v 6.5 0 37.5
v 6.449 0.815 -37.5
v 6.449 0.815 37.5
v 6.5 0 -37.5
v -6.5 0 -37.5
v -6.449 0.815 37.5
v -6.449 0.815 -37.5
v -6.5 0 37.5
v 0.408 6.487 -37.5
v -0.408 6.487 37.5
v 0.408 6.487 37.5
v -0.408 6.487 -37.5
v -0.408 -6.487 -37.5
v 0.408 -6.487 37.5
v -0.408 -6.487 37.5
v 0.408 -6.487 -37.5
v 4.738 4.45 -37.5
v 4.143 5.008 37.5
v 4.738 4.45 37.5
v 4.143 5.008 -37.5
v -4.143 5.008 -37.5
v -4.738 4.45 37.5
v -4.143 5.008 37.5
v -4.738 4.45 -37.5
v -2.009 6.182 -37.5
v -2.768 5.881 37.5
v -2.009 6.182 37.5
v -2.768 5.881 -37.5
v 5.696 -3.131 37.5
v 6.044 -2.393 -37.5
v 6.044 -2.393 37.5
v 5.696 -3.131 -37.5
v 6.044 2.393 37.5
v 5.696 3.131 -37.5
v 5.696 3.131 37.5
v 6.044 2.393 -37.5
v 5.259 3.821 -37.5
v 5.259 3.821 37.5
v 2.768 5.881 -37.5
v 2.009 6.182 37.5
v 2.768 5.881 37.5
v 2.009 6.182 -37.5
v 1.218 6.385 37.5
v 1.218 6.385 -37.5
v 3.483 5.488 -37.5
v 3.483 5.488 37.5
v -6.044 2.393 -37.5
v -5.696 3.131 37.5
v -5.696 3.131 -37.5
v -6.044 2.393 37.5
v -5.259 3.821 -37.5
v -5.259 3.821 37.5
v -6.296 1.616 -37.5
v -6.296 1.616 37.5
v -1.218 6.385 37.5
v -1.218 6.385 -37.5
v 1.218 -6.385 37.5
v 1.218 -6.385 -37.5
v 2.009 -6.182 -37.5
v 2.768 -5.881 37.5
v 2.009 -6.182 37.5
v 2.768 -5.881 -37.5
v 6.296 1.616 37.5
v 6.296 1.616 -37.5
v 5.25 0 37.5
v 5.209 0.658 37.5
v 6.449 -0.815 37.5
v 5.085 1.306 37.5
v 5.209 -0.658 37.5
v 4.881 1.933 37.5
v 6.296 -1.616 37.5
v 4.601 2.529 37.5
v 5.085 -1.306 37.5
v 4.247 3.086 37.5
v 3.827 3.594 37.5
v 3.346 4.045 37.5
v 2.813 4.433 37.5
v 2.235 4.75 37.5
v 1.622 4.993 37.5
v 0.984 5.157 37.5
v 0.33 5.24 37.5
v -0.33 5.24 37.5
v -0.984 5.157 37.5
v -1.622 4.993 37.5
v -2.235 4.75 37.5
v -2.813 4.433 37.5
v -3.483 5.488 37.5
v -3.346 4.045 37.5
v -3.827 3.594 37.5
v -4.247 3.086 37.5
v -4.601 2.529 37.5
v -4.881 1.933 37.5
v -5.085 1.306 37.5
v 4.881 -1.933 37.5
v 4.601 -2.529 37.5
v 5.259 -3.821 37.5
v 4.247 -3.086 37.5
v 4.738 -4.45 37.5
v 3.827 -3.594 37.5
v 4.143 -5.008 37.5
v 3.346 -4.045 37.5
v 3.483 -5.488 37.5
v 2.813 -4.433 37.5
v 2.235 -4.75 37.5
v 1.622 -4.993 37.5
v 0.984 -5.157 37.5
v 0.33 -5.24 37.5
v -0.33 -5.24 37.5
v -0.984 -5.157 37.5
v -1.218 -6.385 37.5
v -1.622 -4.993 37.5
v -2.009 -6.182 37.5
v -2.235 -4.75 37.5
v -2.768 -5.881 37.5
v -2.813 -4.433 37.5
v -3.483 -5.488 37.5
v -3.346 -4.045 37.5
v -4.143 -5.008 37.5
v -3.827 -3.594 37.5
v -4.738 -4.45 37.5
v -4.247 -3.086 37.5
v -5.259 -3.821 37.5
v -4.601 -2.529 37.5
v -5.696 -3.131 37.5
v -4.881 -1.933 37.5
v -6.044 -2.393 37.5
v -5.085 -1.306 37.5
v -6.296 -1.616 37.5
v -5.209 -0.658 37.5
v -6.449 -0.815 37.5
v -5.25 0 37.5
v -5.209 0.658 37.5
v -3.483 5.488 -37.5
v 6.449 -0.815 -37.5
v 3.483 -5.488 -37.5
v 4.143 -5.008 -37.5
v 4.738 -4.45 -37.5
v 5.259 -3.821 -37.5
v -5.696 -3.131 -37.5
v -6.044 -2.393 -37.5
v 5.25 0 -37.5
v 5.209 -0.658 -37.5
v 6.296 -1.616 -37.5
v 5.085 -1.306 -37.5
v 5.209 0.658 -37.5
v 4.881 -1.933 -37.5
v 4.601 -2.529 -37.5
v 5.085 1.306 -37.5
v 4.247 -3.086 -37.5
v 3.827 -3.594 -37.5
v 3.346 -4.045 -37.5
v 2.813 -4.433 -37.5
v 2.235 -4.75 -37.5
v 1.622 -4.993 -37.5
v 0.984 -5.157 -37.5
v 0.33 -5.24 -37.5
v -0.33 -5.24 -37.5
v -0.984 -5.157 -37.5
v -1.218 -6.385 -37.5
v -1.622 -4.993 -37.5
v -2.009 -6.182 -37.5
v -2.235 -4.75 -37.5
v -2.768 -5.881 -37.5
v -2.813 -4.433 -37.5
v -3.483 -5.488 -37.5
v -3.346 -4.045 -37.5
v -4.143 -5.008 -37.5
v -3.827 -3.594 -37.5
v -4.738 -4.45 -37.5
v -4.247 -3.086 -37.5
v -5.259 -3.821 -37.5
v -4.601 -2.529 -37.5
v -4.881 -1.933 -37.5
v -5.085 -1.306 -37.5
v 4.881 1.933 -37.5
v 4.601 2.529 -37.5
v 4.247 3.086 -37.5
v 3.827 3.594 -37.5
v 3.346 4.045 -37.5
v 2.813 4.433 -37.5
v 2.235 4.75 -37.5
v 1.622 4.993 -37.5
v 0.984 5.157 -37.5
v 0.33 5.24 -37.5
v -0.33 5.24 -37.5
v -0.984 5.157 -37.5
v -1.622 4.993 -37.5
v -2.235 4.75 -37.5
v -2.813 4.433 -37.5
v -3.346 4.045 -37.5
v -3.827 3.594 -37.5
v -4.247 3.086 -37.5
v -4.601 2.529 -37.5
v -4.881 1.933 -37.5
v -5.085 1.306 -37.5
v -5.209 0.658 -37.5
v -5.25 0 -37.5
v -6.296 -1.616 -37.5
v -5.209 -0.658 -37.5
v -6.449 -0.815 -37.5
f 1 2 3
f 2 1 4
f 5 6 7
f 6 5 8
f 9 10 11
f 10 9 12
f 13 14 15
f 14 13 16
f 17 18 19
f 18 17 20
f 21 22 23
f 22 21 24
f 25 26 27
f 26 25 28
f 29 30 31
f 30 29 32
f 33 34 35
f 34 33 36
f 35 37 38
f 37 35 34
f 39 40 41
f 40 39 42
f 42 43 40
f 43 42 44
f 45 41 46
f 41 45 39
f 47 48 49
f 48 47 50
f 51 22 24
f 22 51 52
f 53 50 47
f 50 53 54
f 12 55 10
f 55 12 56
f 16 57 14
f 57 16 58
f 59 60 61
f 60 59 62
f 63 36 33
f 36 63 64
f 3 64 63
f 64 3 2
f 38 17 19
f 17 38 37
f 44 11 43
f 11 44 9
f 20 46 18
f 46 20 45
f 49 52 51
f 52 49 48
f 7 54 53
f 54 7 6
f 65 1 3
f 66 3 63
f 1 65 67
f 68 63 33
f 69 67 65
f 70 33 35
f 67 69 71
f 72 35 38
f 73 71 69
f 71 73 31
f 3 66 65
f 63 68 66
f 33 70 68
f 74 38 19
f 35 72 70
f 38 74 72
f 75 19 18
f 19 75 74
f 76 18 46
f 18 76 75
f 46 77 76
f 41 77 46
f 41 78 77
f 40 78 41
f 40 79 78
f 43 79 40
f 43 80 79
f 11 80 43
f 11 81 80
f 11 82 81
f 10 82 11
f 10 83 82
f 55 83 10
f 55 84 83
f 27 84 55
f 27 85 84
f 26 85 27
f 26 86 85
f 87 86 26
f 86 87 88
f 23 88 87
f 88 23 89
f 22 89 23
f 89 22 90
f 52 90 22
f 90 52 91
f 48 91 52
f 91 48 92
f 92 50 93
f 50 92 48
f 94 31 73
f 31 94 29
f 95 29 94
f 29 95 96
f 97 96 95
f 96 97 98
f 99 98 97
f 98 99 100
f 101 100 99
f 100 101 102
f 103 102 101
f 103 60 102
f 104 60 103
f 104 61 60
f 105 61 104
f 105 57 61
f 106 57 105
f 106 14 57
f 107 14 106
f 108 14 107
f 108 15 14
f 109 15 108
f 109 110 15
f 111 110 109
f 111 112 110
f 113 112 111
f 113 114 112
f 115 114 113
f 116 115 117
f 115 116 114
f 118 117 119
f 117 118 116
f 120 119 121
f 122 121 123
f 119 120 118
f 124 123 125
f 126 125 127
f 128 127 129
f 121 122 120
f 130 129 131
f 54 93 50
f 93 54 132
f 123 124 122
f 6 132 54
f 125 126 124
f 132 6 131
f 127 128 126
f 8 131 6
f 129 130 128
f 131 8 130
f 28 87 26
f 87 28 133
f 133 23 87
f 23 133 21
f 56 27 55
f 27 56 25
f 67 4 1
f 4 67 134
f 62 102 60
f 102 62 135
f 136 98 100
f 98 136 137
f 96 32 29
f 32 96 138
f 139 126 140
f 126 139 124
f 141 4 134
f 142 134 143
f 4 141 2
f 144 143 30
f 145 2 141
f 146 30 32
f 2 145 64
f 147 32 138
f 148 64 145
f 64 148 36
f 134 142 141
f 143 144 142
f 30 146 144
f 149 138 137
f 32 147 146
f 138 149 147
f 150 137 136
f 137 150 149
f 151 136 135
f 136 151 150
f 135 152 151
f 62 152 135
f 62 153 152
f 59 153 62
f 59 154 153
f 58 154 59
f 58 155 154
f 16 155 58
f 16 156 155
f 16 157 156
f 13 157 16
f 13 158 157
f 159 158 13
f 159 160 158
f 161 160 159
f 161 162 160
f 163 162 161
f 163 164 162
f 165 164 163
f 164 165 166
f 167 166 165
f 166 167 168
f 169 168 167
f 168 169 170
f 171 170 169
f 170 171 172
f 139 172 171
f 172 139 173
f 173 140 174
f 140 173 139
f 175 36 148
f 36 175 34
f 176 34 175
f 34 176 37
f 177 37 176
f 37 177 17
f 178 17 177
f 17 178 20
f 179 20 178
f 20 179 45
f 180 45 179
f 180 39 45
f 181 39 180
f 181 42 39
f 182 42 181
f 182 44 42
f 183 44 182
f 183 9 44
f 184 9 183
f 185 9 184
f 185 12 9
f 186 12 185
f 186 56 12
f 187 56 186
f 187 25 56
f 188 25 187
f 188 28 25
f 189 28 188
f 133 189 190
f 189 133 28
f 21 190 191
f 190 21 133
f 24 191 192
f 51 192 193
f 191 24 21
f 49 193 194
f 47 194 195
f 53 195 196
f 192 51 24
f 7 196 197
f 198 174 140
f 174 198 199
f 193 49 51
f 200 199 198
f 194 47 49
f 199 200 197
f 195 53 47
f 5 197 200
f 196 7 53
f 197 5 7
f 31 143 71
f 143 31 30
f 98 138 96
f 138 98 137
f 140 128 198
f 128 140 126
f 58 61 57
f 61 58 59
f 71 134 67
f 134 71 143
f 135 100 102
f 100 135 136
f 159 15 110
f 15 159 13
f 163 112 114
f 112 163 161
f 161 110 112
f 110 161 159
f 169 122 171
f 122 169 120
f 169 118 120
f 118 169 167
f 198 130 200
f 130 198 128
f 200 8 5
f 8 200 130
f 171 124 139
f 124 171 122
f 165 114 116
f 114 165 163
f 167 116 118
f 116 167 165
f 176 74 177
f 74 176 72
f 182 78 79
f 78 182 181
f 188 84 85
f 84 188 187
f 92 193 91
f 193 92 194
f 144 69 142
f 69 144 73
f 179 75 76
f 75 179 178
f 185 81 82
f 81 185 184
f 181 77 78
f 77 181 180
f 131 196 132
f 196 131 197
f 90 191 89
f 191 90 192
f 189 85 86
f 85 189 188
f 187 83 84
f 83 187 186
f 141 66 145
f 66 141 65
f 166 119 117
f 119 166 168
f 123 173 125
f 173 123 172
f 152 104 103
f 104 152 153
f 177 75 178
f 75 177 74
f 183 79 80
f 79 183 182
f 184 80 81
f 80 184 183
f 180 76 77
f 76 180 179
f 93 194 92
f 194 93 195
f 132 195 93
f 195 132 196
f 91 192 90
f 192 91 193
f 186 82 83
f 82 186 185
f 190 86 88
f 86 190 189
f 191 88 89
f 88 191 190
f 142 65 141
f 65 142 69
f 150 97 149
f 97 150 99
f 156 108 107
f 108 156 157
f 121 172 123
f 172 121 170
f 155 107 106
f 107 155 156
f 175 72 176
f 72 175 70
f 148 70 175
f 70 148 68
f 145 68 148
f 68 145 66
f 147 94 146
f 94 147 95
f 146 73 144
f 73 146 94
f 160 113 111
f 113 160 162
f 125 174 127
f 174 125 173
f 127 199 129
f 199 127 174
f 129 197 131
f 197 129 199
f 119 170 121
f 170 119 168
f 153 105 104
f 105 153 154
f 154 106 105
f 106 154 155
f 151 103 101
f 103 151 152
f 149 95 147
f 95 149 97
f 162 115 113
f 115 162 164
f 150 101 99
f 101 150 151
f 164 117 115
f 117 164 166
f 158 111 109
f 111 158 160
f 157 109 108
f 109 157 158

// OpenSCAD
$fn = 50;


difference() {
	union() {
		translate(v = [0, 0, -37.5000000000]) {
			cylinder(h = 75, r = 6.5000000000);
		}
	}
	union() {
		translate(v = [0, 0, -100.0000000000]) {
			cylinder(h = 200, r = 5.2500000000);
		}
	}
}
